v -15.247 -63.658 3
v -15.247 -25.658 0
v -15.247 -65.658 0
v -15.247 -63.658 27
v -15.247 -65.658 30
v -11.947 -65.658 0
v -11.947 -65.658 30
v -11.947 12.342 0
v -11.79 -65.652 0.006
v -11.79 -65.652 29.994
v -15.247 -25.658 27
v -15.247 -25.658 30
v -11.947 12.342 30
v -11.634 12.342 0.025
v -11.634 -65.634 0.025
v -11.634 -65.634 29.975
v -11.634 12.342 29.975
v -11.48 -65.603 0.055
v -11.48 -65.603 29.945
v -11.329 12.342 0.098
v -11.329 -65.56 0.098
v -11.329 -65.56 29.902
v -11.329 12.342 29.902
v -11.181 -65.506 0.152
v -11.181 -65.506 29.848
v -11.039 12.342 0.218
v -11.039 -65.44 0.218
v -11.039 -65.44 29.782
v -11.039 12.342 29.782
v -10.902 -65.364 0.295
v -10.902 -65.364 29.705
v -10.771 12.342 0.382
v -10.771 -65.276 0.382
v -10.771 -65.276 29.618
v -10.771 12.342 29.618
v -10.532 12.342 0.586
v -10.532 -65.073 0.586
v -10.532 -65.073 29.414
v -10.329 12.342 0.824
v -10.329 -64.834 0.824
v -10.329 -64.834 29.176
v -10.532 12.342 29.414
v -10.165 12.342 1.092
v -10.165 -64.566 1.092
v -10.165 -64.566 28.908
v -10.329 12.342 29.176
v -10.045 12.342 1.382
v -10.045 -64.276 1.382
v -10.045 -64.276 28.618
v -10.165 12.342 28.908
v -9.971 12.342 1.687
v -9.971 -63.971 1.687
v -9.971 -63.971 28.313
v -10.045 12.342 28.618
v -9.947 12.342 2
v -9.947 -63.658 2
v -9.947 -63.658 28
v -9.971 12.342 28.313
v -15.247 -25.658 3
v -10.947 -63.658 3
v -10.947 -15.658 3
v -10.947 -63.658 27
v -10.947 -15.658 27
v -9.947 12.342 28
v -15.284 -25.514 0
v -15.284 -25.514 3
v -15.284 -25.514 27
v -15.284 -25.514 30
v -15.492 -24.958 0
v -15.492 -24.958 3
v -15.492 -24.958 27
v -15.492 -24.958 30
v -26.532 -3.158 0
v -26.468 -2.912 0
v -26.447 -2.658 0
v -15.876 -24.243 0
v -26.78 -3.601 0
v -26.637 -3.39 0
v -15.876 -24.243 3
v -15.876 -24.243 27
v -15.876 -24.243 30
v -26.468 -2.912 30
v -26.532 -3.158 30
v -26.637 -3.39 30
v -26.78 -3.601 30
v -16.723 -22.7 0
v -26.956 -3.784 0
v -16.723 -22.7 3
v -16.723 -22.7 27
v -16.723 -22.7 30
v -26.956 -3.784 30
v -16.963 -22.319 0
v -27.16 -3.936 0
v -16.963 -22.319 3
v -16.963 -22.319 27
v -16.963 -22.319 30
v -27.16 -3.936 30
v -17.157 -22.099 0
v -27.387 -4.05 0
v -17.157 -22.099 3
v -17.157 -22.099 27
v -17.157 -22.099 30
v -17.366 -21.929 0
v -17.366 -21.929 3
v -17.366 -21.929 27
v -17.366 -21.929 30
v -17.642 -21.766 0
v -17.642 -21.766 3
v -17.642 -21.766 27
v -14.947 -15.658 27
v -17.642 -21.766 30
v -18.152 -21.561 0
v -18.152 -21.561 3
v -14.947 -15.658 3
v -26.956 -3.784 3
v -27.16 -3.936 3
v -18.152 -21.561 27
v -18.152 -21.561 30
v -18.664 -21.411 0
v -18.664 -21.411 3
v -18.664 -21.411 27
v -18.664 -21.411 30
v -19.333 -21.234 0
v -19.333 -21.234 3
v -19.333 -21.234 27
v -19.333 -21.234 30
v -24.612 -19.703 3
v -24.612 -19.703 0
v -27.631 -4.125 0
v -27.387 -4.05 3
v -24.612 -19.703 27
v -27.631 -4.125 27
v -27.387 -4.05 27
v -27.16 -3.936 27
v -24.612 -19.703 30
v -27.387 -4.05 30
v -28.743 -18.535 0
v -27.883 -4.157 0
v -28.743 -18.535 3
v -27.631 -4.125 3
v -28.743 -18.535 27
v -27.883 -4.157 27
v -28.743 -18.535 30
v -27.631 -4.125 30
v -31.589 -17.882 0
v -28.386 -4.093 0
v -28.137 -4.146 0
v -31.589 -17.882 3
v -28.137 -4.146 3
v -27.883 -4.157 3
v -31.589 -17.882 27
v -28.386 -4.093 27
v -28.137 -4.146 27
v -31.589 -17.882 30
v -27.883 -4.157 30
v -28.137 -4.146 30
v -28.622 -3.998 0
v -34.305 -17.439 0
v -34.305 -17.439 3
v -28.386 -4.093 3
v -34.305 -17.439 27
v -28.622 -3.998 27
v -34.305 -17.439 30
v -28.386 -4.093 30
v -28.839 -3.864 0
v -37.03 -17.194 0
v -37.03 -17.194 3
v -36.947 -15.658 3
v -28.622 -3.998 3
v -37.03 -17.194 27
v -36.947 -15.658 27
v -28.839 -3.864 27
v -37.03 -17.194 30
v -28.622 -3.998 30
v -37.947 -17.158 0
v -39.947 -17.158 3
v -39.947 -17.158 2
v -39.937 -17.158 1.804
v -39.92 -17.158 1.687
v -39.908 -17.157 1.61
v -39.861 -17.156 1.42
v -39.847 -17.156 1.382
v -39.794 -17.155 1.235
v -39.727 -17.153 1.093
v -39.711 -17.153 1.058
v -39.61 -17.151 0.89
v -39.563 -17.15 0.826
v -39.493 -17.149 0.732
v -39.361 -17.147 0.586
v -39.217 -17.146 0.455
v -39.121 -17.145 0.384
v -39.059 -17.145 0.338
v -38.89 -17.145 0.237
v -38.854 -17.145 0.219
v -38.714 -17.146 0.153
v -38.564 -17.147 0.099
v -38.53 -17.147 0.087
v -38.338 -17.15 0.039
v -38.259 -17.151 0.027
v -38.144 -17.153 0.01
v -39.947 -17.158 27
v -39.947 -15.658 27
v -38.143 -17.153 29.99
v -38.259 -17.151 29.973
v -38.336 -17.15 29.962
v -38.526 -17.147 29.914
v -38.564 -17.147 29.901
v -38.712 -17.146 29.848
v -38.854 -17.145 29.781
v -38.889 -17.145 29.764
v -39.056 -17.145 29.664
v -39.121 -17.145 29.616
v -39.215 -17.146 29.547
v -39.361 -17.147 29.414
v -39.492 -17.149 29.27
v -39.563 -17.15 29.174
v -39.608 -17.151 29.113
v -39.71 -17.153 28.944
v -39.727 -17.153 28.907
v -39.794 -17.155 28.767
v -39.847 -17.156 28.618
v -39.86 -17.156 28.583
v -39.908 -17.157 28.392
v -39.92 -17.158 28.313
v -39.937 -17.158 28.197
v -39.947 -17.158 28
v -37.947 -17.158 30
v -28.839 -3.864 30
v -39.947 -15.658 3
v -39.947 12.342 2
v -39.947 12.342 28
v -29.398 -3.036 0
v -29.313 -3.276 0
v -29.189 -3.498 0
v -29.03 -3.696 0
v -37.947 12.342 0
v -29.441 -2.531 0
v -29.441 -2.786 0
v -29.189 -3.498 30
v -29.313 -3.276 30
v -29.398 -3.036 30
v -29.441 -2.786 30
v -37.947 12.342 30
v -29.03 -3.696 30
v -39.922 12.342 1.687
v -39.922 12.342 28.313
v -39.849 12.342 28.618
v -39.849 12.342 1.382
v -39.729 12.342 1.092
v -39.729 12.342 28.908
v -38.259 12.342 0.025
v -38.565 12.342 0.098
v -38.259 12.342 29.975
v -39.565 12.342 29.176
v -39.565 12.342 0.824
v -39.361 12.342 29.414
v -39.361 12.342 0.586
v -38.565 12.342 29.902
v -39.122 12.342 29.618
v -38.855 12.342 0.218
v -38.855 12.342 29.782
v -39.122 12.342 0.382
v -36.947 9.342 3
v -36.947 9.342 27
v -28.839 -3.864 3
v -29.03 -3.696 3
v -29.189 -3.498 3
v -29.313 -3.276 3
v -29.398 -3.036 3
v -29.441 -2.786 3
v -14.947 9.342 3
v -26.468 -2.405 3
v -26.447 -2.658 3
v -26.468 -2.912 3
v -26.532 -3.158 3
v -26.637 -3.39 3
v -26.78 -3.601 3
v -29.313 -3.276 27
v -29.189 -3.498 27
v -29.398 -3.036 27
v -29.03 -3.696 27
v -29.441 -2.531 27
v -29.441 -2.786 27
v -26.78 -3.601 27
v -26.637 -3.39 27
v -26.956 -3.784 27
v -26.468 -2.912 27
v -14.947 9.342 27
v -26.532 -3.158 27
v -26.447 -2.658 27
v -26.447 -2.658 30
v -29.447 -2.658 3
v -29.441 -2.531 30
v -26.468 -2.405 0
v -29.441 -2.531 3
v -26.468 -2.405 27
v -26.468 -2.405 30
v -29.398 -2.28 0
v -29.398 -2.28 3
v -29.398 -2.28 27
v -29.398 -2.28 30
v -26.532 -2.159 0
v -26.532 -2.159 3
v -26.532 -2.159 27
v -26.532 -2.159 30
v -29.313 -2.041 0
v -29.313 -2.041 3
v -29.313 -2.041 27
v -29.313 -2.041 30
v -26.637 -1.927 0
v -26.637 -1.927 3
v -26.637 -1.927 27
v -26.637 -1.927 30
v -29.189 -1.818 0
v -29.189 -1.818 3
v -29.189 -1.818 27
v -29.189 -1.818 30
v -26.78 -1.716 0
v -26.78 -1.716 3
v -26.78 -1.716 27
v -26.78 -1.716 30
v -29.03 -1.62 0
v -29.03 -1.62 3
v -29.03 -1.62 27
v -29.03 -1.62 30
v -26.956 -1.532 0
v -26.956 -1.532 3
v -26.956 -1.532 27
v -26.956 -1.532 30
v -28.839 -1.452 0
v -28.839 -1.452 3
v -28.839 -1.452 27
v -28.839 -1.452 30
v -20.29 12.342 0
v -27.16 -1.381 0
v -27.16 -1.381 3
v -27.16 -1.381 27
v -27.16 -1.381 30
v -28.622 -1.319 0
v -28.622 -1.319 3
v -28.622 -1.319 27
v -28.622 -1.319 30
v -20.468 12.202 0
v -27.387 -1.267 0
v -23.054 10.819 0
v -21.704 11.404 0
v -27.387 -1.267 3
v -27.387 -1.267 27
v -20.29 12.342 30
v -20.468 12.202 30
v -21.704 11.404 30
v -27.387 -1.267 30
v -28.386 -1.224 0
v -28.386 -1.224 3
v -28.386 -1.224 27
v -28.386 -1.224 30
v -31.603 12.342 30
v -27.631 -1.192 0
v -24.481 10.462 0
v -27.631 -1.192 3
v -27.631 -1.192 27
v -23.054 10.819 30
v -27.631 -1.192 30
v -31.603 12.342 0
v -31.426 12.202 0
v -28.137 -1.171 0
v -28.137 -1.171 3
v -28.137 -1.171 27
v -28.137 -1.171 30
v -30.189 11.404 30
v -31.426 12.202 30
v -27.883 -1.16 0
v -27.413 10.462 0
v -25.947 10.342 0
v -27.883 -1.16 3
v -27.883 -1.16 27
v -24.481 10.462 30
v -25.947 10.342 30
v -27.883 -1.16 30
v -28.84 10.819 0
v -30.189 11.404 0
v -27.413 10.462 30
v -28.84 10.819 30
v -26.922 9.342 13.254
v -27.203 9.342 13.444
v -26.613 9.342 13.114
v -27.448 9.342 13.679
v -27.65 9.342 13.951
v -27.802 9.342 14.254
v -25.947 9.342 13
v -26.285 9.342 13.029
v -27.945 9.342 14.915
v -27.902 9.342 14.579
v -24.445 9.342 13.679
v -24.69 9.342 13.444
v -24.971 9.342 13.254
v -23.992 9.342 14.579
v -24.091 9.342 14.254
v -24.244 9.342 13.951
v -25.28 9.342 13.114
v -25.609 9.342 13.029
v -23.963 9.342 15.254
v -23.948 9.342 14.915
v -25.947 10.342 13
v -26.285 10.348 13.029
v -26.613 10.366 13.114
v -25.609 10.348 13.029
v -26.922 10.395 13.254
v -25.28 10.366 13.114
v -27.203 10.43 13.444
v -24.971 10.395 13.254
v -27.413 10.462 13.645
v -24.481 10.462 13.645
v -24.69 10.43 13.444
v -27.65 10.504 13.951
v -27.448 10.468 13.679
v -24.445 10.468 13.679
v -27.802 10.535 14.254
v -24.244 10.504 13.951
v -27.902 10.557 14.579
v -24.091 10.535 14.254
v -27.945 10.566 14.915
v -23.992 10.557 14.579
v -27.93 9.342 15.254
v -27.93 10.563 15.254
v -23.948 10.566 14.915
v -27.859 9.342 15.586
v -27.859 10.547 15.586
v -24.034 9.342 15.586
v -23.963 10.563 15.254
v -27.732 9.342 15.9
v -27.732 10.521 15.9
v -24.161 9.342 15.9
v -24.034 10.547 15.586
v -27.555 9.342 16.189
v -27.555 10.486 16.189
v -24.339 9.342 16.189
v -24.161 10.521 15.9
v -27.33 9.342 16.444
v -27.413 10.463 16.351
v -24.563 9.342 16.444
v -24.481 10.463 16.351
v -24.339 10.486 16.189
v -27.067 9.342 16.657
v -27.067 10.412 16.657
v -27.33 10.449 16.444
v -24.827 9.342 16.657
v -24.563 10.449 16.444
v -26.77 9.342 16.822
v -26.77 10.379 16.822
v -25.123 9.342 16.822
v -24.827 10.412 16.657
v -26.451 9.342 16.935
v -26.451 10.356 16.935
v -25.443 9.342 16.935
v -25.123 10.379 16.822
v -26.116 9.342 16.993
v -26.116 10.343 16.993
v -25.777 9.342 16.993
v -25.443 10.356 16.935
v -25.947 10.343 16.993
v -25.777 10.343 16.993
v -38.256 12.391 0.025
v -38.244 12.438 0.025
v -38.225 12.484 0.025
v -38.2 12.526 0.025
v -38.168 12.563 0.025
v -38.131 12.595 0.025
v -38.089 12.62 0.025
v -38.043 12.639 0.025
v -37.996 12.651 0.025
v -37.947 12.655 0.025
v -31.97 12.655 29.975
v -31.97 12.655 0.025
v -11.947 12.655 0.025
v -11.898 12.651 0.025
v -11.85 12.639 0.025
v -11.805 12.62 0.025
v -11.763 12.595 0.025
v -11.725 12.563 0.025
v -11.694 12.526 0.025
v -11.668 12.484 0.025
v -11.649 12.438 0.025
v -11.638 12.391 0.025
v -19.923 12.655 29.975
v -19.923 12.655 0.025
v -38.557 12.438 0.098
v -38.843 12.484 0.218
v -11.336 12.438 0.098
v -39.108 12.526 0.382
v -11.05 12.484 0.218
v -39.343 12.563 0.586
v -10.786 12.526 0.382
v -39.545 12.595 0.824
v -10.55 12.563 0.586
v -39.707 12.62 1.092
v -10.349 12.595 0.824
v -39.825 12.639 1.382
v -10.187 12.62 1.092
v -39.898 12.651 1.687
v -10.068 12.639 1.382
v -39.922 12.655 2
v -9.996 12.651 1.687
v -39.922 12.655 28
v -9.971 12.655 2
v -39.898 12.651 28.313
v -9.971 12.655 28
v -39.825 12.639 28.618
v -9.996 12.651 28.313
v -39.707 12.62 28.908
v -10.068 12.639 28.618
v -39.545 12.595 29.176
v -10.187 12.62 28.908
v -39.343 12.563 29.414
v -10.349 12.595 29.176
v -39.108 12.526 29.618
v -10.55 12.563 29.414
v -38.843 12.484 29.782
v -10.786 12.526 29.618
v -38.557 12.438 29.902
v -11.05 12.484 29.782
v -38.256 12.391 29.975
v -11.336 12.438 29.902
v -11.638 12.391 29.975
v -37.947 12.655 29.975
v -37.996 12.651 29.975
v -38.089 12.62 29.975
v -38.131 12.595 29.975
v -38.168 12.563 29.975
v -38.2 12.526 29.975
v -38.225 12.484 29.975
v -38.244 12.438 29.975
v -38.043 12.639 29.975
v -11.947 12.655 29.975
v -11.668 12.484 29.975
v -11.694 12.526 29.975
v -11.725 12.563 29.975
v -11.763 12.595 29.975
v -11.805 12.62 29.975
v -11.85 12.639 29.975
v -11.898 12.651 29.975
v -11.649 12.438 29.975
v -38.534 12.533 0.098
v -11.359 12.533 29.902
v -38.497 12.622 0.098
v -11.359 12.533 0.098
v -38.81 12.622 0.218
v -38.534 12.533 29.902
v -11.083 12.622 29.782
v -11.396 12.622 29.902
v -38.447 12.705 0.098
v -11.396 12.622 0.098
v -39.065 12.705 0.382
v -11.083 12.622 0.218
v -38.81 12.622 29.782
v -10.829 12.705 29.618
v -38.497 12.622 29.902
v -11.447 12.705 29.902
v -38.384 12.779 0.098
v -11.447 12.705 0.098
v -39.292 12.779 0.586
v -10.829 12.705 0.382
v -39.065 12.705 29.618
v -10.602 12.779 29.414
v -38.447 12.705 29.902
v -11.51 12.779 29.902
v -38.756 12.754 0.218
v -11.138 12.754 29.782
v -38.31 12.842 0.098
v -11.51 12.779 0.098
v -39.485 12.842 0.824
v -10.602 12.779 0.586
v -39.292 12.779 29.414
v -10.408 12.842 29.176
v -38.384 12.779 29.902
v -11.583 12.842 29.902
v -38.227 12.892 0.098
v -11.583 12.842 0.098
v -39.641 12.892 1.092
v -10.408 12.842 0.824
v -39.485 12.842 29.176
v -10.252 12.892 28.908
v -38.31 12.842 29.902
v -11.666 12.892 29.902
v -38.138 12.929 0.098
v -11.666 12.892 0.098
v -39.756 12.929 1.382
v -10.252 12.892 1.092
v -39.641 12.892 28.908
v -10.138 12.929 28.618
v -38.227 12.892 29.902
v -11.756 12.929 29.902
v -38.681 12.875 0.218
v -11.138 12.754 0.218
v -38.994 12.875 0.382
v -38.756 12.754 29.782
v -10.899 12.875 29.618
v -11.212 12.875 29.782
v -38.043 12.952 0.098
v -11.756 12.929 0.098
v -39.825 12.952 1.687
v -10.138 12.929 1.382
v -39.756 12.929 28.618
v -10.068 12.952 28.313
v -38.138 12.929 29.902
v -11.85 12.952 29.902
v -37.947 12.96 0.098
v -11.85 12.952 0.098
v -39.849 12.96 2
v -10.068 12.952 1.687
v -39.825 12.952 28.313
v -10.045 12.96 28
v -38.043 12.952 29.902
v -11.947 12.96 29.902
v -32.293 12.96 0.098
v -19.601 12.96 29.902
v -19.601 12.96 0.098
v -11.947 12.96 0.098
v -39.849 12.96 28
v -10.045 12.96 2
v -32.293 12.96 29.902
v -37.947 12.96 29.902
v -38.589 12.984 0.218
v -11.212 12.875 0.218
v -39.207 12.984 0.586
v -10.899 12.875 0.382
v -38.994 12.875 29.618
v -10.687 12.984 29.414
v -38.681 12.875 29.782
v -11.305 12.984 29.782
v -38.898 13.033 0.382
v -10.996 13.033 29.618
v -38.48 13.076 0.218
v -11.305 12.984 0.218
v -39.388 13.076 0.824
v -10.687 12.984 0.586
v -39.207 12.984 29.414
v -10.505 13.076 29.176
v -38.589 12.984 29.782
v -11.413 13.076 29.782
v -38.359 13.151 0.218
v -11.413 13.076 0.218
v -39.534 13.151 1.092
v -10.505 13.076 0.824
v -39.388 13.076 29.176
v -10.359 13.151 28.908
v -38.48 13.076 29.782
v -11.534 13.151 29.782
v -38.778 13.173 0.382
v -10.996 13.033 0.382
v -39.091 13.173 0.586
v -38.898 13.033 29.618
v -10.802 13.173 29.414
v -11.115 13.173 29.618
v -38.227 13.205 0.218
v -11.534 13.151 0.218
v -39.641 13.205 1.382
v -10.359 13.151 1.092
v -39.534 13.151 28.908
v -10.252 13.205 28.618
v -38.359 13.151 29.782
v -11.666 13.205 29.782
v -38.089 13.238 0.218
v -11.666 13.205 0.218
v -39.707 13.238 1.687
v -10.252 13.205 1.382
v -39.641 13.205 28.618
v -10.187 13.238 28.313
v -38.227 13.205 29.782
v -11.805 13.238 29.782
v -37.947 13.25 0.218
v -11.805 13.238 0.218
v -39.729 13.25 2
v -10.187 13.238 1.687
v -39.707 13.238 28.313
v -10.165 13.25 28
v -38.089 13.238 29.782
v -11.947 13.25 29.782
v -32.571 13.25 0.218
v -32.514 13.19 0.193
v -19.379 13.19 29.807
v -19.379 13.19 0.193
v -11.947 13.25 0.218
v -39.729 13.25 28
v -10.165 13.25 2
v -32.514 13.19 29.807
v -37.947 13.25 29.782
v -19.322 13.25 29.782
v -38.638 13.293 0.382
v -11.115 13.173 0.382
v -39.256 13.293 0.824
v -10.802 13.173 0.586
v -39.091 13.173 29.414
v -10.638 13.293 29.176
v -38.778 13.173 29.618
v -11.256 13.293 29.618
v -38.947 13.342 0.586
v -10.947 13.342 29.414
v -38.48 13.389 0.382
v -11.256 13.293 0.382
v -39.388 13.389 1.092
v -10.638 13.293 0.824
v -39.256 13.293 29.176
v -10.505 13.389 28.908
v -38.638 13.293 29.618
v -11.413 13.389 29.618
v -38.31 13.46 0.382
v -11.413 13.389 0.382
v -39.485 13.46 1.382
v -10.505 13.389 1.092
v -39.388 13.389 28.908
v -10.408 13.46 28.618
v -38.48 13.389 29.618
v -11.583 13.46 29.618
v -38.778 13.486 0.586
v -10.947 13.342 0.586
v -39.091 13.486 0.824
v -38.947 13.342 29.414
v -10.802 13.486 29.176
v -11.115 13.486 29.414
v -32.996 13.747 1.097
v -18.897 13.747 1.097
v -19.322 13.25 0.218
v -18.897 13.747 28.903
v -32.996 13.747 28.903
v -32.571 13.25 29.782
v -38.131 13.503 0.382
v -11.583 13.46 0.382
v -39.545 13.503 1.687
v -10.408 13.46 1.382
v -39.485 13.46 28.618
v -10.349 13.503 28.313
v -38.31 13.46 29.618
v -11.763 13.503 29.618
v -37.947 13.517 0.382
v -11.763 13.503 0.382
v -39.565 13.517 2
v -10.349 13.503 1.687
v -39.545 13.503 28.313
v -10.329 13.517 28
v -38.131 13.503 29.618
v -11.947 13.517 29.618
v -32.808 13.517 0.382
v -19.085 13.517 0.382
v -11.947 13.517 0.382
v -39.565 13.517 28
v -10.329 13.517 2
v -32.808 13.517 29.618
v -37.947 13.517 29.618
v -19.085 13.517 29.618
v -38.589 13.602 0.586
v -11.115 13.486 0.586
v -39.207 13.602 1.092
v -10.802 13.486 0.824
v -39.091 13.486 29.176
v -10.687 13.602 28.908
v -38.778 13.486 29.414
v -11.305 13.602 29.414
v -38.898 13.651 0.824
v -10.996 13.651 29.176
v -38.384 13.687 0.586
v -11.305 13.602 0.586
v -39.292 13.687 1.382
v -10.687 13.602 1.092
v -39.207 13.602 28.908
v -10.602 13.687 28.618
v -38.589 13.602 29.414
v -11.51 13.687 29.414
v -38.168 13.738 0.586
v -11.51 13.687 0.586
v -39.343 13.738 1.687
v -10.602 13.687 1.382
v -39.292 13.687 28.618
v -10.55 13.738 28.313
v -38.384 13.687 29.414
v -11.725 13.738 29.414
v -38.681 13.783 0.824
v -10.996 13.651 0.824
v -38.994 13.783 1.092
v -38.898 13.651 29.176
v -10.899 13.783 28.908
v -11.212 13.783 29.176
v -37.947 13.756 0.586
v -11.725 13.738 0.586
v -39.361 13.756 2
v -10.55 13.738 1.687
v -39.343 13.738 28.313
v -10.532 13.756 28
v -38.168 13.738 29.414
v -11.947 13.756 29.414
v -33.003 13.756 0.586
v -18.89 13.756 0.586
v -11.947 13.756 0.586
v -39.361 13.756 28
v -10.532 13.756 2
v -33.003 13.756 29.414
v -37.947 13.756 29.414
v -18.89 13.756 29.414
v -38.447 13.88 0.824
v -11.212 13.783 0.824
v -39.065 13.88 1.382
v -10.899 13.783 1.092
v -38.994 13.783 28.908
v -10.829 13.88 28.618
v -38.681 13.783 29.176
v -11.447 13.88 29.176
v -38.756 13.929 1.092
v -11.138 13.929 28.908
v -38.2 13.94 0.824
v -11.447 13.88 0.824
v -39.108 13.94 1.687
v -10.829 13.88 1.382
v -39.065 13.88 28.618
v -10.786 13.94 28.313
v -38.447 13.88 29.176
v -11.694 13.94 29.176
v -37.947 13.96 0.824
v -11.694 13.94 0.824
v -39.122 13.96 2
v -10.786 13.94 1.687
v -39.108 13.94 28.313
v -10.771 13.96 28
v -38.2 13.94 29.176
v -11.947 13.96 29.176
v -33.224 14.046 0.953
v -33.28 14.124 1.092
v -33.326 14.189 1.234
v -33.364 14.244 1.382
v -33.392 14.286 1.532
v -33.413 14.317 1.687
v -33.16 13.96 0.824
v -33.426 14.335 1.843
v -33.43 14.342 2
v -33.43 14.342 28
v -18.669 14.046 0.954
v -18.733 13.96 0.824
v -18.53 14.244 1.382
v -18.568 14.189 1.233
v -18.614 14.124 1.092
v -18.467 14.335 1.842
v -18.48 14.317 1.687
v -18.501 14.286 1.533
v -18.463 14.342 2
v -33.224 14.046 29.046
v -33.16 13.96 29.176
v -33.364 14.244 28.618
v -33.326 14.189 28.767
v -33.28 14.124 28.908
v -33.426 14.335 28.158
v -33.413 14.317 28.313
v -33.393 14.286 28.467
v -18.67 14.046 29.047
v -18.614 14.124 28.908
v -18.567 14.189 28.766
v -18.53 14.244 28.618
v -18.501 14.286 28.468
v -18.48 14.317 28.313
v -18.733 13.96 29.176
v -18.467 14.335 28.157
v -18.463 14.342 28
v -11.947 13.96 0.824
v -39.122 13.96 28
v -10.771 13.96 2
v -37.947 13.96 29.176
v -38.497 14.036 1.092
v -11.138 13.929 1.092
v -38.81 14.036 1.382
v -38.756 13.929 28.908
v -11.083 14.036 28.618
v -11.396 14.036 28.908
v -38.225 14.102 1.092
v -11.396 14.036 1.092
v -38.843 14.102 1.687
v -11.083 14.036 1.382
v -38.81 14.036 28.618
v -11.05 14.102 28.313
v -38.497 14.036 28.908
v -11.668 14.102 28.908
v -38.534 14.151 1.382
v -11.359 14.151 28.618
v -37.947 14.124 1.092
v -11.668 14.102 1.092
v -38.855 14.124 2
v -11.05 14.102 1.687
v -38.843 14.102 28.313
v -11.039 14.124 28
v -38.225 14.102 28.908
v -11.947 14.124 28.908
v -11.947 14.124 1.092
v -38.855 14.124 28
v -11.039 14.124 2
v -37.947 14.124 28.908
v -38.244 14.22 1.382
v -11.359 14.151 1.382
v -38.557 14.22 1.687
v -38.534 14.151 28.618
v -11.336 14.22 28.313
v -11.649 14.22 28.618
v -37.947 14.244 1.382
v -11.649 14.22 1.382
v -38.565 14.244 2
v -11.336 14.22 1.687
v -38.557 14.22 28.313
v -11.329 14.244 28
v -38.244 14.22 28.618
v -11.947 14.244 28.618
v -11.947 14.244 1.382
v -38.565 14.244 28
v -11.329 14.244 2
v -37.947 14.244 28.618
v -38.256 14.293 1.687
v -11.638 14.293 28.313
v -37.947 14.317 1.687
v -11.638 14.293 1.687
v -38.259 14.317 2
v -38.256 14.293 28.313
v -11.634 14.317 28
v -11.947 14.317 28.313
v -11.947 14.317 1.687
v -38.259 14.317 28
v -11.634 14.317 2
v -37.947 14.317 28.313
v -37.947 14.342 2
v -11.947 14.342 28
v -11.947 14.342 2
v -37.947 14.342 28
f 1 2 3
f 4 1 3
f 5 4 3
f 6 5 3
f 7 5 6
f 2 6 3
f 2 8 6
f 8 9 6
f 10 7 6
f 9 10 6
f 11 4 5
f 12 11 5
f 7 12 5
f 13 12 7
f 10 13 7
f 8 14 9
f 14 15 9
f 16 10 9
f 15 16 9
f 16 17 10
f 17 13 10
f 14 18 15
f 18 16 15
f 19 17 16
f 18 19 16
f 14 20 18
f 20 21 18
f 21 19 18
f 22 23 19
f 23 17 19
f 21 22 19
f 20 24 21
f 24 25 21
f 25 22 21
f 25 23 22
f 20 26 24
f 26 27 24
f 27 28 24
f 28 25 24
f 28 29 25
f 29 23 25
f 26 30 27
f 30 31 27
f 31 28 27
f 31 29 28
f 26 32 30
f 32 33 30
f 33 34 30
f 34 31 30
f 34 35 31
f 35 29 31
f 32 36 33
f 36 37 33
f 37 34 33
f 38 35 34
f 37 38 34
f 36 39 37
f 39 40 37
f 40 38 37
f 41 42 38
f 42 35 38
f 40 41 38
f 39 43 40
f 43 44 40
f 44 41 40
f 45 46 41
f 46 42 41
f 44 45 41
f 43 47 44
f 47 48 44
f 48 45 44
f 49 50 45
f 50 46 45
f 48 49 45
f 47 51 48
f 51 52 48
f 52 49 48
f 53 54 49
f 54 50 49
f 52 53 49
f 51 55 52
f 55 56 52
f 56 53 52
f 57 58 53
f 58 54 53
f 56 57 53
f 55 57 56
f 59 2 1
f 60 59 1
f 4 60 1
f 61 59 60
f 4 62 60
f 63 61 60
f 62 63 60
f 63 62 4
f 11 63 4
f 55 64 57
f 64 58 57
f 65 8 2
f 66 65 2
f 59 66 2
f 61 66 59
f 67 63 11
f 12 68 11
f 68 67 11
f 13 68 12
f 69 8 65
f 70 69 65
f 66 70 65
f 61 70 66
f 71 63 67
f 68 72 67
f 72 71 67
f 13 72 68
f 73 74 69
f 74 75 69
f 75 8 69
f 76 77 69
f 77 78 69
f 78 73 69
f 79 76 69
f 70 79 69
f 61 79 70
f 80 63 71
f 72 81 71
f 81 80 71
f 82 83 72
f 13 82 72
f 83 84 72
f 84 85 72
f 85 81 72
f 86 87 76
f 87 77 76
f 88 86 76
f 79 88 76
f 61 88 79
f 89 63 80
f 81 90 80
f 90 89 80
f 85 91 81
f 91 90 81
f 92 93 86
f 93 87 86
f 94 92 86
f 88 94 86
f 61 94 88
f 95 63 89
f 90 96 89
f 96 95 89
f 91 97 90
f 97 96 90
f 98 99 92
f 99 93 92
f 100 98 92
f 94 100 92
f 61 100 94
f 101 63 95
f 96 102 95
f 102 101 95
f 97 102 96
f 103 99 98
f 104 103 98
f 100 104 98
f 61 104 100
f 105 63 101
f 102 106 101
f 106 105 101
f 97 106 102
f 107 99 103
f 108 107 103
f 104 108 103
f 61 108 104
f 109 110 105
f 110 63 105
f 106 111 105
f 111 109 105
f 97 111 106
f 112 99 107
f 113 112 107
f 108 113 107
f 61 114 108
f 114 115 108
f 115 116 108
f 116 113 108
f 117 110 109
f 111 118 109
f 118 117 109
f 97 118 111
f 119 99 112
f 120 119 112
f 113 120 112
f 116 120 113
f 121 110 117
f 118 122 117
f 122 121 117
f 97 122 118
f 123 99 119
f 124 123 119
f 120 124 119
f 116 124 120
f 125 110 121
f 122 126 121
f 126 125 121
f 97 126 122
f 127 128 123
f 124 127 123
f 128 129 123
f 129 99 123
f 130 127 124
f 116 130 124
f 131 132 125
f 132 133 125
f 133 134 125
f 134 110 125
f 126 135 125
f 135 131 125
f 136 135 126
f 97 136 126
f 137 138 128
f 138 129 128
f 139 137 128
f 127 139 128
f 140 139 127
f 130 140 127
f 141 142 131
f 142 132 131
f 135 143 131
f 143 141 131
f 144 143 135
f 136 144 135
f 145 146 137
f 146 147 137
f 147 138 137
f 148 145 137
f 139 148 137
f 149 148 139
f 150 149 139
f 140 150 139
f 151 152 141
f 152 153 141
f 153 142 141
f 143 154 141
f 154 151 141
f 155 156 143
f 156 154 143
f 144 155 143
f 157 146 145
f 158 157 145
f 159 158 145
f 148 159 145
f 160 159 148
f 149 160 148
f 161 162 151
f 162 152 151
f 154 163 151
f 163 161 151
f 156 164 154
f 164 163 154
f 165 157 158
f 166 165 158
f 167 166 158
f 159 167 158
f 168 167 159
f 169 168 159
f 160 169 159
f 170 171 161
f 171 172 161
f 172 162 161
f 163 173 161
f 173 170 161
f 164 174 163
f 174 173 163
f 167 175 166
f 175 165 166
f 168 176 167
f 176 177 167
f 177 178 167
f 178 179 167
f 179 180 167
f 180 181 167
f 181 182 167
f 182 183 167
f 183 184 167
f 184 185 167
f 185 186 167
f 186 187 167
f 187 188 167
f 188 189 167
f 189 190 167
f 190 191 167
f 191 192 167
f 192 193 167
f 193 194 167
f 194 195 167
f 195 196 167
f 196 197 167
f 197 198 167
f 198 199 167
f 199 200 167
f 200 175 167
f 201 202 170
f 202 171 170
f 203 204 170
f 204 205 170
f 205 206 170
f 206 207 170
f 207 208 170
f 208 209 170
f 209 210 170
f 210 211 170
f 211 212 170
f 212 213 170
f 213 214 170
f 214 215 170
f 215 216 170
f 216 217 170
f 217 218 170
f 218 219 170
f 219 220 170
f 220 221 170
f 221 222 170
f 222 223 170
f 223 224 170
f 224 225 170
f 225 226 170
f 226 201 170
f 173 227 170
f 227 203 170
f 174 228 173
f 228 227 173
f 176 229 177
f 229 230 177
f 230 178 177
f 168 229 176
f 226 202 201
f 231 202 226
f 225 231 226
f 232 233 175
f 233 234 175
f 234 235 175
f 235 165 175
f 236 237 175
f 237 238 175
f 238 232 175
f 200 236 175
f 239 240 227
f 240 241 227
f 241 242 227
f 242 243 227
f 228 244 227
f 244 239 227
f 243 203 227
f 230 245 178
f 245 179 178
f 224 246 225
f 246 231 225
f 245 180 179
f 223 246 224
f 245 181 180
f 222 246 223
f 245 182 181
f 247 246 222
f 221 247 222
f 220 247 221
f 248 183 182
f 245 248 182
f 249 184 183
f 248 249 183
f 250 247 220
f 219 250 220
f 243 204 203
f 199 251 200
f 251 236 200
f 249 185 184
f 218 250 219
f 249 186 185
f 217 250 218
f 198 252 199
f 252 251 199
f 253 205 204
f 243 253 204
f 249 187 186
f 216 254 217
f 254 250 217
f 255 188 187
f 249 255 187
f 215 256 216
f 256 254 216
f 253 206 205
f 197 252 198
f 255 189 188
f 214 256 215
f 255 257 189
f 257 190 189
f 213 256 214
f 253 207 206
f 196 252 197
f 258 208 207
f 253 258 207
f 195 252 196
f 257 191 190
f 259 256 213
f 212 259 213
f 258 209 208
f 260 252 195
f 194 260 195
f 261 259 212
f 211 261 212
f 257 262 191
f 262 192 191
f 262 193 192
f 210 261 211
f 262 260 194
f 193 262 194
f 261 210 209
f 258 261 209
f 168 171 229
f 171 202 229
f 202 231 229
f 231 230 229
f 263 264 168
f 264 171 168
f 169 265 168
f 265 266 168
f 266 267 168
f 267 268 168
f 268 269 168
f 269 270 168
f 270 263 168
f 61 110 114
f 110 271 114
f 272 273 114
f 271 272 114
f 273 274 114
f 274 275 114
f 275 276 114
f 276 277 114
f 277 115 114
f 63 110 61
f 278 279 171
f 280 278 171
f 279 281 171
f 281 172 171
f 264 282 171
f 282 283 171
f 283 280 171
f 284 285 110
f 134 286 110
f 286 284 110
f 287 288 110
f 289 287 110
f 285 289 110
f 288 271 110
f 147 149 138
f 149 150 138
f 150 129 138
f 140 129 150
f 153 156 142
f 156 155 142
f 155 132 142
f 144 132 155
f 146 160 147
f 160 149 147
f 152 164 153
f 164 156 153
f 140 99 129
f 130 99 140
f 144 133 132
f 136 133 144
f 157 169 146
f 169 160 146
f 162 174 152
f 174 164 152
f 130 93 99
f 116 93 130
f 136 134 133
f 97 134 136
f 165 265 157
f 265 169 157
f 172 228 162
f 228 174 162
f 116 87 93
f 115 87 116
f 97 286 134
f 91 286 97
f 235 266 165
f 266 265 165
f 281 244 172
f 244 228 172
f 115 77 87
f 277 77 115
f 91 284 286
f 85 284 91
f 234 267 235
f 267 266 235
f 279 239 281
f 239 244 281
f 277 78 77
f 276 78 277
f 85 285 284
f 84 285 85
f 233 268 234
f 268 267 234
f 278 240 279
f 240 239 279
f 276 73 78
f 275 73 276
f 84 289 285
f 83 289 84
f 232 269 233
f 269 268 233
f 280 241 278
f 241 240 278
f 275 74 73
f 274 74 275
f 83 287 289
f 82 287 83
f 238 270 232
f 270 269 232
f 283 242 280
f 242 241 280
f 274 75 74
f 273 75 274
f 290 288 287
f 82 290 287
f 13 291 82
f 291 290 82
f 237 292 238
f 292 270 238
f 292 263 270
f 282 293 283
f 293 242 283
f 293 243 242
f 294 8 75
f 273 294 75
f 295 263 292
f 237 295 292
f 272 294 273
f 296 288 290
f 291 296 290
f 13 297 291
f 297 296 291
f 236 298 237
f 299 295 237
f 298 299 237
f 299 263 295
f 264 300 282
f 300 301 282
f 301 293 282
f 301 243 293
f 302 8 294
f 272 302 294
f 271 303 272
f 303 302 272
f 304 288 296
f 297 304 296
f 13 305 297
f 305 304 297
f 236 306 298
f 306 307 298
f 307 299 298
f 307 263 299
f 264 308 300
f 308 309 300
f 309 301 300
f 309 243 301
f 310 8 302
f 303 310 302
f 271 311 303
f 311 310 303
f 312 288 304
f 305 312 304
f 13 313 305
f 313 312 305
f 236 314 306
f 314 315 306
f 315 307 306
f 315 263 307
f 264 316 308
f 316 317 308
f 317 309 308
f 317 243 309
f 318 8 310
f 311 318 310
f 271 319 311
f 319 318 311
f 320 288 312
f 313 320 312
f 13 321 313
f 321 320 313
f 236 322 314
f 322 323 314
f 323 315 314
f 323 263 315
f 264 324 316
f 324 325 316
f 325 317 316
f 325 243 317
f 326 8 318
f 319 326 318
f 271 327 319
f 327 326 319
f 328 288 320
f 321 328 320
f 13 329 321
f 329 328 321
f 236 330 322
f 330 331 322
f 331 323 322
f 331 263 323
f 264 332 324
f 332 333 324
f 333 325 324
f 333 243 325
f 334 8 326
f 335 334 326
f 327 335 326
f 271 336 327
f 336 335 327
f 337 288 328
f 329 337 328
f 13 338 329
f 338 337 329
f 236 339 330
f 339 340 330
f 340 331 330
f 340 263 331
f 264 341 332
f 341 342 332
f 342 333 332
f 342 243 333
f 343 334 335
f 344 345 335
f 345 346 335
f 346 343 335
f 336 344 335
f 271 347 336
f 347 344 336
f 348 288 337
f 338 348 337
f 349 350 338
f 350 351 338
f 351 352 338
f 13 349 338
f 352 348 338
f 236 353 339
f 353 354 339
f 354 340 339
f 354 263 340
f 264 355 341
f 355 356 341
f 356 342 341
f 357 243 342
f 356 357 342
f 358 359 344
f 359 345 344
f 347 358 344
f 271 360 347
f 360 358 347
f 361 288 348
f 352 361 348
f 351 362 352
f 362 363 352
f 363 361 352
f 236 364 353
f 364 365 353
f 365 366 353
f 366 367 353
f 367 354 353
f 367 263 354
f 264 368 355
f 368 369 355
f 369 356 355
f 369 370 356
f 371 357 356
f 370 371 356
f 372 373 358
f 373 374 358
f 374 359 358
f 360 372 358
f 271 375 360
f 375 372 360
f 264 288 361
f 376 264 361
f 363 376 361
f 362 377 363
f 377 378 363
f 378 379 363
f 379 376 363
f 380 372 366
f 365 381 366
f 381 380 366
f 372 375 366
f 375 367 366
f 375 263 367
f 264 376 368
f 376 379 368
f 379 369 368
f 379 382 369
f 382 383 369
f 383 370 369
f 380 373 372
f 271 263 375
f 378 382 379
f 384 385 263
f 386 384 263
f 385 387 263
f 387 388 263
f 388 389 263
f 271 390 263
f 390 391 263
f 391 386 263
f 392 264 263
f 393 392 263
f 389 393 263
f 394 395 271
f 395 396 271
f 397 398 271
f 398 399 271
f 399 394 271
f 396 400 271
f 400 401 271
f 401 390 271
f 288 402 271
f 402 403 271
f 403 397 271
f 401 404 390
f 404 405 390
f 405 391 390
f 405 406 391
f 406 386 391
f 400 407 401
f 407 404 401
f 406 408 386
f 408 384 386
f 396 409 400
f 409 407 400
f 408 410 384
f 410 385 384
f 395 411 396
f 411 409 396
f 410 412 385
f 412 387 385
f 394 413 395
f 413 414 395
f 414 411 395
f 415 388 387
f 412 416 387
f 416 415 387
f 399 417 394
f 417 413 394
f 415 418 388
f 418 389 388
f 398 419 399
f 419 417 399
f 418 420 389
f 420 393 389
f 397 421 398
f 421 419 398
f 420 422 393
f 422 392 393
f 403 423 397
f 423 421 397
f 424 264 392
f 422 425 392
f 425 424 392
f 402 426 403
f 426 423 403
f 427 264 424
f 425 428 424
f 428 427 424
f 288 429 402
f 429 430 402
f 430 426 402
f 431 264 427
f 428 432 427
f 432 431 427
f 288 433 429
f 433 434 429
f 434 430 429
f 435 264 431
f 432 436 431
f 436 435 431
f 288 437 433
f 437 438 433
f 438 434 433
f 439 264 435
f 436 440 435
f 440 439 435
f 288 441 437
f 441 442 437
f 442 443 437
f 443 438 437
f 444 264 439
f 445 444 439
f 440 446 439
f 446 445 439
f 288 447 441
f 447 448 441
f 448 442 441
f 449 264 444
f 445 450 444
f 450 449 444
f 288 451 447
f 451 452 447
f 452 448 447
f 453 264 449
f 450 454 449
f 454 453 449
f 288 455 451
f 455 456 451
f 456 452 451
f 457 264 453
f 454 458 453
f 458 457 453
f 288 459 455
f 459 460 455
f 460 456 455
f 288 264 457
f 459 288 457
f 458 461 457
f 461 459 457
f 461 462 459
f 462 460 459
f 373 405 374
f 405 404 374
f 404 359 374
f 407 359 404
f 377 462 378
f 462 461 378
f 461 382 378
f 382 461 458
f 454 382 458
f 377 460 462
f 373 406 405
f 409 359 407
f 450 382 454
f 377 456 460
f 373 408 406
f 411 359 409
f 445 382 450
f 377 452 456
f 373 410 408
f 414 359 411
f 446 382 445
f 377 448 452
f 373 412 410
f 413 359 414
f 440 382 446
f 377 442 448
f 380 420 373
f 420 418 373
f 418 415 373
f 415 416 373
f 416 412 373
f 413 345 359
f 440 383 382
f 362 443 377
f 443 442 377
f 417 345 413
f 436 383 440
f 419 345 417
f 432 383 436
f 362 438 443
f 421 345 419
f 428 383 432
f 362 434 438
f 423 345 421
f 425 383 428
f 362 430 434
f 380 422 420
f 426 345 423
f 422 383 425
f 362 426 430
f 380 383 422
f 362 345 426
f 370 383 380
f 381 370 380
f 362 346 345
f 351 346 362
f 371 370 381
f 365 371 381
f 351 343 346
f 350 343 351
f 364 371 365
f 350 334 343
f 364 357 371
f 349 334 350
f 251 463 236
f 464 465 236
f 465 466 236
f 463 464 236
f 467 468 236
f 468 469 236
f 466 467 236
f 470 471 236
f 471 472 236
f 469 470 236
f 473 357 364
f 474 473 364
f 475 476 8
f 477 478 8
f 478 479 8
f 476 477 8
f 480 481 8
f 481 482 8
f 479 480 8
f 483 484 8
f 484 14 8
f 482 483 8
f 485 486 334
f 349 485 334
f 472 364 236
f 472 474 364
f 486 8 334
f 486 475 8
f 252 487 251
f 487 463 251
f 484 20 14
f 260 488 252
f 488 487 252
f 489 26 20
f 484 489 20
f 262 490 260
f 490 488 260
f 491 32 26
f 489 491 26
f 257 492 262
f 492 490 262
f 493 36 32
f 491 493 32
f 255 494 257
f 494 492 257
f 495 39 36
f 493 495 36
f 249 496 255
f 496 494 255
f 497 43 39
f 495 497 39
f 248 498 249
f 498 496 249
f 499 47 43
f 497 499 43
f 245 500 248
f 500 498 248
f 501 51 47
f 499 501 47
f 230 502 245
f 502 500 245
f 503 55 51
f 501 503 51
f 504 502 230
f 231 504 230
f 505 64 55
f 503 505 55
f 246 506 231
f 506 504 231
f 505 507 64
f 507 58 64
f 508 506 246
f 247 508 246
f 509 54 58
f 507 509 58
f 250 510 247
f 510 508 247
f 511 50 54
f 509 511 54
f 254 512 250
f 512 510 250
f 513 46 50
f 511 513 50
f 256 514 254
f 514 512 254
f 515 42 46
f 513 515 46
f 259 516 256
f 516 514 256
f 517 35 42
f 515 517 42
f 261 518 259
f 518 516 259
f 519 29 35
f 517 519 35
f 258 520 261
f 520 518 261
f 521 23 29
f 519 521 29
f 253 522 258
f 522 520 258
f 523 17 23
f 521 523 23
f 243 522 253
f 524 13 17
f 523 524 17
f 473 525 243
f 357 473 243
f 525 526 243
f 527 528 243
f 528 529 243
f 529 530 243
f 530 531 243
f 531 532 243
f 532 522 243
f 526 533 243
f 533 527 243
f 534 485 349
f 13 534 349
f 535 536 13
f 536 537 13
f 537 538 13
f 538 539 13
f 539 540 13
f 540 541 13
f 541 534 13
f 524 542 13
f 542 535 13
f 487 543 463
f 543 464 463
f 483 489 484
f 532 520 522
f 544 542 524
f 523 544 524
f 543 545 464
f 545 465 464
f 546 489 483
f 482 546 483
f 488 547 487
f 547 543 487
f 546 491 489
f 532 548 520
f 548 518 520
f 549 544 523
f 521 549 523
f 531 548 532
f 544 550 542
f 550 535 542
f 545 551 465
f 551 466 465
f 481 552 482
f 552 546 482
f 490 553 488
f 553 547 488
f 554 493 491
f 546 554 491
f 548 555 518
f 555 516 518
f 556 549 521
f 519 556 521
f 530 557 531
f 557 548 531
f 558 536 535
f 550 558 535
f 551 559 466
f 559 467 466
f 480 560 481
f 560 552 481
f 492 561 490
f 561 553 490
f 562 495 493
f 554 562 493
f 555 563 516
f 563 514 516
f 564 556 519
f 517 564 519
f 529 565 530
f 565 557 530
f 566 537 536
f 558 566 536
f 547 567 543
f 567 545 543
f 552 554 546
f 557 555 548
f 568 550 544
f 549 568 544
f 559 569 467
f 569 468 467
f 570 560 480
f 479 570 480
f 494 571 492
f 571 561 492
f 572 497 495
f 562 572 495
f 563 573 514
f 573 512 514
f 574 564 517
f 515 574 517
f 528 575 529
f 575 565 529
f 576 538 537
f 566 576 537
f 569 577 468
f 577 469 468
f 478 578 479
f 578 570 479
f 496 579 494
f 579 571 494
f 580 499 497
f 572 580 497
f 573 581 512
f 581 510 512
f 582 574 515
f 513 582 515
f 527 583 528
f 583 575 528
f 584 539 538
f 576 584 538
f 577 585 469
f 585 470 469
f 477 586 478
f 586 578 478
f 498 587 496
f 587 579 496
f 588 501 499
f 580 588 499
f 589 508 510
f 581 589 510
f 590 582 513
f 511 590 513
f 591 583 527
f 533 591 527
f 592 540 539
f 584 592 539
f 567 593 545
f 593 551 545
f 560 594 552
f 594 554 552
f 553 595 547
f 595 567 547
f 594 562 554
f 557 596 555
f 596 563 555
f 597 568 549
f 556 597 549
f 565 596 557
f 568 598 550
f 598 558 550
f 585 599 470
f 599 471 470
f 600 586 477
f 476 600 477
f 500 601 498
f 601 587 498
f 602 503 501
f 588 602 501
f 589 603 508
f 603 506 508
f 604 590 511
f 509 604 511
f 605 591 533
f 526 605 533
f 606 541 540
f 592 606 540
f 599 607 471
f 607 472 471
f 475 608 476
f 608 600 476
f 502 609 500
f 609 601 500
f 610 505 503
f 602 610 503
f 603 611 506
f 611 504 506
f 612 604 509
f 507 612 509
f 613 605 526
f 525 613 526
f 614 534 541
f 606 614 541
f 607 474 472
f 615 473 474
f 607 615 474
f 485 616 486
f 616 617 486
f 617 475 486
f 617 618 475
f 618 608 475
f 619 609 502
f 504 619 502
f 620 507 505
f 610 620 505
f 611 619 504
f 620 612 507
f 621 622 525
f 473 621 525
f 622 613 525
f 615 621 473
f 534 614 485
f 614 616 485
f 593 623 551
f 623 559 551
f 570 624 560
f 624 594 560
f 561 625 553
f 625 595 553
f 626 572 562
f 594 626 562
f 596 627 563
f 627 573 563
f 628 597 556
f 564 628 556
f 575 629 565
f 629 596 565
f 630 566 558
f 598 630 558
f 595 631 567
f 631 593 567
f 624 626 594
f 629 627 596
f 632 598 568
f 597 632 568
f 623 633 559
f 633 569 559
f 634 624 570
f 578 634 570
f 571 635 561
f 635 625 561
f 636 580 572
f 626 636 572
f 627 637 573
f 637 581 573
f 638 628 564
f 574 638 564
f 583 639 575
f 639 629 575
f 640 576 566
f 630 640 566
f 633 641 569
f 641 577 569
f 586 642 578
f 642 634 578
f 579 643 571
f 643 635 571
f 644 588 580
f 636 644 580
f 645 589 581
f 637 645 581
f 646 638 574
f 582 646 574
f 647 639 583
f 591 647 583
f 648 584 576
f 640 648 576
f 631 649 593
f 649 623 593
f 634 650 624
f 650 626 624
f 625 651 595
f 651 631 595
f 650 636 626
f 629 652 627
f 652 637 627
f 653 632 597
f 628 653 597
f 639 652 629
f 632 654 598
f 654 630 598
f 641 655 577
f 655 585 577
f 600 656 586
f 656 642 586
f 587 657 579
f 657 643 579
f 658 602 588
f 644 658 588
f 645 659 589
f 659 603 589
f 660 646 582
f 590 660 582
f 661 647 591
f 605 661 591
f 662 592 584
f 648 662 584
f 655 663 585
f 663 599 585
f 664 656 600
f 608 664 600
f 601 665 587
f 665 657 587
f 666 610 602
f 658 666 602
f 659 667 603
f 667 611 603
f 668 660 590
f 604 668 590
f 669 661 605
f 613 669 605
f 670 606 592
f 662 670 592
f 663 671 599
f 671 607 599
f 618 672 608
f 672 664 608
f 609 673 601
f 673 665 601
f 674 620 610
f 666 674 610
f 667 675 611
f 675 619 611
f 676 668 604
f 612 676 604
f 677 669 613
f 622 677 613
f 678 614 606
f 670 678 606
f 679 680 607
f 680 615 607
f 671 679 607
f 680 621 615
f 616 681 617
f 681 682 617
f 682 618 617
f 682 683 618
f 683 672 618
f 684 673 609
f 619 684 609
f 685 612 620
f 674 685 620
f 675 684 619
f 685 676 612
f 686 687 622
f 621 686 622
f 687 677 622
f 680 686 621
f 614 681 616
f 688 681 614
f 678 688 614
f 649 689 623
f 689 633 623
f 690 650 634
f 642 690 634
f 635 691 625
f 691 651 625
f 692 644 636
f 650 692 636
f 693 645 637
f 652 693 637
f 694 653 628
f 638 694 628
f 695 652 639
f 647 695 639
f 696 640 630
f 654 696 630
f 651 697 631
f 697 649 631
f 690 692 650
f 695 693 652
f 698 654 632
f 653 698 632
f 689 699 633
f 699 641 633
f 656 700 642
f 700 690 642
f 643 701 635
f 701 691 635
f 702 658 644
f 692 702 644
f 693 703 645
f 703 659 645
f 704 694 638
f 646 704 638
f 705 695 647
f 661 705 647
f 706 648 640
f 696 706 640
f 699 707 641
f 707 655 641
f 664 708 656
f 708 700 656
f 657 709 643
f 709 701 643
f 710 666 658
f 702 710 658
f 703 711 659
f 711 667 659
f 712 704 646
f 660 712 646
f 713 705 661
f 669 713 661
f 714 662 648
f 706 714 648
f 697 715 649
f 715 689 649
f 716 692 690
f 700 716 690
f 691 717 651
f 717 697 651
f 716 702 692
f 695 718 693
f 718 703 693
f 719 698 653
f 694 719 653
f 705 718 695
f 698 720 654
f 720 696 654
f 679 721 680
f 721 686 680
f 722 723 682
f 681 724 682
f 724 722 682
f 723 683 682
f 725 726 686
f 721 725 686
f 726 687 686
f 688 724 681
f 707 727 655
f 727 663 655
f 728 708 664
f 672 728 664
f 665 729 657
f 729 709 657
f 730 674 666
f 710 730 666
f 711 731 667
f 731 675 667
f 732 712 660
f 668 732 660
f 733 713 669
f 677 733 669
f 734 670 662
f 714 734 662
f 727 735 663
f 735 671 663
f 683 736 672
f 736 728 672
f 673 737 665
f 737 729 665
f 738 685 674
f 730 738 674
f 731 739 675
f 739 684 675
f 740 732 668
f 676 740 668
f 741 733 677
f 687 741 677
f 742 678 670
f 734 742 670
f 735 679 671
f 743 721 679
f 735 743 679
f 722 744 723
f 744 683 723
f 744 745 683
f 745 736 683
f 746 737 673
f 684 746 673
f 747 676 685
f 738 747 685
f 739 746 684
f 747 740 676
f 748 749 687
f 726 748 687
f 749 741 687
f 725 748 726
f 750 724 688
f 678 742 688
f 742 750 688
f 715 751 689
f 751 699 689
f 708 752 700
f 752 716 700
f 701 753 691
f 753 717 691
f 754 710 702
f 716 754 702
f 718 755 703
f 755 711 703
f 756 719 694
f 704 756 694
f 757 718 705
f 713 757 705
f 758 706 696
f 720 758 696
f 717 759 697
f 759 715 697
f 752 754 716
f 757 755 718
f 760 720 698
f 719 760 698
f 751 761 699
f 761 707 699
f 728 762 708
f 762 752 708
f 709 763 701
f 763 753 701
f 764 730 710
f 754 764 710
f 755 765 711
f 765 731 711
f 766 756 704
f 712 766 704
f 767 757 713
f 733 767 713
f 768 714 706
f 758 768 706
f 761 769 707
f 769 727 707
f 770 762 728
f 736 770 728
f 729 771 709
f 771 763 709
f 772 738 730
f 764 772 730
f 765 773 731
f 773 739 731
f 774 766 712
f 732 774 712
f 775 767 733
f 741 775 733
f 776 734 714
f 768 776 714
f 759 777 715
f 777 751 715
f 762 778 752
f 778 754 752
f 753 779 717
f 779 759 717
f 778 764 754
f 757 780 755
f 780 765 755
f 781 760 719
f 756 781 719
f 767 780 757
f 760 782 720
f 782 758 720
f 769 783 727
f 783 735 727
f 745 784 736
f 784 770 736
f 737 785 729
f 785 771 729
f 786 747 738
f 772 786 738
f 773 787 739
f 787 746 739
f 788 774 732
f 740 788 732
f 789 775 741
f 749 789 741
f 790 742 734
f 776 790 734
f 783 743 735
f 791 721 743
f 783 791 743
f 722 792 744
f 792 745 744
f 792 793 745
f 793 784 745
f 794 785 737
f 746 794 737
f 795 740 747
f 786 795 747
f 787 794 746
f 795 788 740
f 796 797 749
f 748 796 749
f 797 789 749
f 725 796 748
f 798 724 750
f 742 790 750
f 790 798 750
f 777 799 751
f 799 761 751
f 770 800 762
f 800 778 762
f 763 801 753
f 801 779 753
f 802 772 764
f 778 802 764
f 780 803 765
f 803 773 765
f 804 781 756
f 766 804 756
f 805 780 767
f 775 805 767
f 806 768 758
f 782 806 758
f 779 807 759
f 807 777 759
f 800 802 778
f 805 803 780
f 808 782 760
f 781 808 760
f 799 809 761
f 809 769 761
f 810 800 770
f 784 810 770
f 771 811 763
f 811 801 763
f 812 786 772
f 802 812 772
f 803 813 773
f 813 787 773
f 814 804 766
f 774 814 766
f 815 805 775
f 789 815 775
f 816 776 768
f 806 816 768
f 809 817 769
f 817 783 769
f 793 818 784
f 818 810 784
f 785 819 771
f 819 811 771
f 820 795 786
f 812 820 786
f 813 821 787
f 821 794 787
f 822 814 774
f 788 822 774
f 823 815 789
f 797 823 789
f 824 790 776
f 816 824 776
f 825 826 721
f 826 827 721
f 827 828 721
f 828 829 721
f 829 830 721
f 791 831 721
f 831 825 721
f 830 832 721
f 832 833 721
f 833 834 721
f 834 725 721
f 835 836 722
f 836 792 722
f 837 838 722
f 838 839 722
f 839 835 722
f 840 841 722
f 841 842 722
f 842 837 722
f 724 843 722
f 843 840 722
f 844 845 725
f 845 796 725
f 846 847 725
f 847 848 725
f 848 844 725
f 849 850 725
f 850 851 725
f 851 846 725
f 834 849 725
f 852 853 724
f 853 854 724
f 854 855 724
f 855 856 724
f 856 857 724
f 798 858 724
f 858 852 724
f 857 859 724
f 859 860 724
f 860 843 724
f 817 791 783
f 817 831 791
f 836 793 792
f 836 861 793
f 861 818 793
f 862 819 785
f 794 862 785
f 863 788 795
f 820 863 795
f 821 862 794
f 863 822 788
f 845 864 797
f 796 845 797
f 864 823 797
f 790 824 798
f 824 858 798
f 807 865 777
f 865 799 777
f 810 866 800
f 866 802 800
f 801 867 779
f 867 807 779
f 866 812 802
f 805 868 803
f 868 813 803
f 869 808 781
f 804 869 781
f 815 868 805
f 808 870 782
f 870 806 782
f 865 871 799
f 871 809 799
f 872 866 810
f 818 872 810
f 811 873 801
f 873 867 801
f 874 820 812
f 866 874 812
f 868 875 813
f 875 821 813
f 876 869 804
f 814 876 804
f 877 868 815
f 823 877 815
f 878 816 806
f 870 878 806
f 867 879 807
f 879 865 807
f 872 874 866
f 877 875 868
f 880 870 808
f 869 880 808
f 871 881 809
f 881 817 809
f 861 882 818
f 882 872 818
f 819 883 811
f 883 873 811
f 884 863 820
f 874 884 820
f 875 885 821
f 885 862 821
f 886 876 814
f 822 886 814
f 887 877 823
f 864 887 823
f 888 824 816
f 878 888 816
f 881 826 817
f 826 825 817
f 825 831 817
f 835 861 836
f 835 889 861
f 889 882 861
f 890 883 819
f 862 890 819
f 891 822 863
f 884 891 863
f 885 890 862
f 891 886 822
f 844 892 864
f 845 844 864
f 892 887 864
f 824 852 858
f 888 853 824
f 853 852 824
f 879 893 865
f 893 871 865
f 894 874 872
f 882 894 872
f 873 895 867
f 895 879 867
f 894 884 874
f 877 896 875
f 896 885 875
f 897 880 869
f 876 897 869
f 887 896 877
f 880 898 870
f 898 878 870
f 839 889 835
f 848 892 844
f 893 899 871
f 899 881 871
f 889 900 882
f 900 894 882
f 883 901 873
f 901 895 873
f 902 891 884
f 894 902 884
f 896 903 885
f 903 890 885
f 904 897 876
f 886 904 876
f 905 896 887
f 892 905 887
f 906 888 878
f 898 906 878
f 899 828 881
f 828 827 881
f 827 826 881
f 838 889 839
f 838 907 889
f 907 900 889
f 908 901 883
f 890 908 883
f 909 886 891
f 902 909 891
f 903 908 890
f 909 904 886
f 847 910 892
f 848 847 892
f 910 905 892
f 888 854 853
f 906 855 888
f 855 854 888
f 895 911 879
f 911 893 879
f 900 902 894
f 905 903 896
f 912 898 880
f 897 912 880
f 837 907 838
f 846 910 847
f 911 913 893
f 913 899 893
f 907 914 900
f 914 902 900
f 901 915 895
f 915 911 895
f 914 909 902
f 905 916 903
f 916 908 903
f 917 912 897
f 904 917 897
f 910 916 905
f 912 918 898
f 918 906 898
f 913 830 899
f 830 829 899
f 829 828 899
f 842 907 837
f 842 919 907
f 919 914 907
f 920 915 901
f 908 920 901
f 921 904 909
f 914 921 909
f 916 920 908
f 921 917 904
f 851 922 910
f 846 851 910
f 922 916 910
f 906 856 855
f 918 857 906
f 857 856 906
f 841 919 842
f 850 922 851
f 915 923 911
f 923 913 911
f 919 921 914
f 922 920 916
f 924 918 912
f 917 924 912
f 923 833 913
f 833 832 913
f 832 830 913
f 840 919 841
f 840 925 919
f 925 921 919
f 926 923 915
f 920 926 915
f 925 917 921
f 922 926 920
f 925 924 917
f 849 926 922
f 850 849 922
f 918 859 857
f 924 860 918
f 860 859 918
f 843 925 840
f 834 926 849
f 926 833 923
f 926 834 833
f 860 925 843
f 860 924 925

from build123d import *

# Parameters (mm, degrees)
CROQUIS1_W              = 28
CROQUIS1_H              = 30
SALIENTE_EXTRUIR1_DEPTH = 30
CROQUIS2_W              = 22
CROQUIS2_H              = 24
CORTAR_EXTRUIR1_DEPTH   = 25
CORTAR_EXTRUIR3_START   = -30
CORTAR_EXTRUIR3_DEPTH   = 30
CROQUIS3_R              = 2
CORTAR_EXTRUIR4_DEPTH   = 5
CORTAR_EXTRUIR5_START   = -30
CROQUIS6_R              = 1.5
CORTAR_EXTRUIR5_DEPTH   = 30
CROQUIS8_W              = 30
CROQUIS8_H              = 78
SALIENTE_EXTRUIR2_DEPTH = 2
CROQUIS9_W              = 3.3
CROQUIS9_H              = 3
SALIENTE_EXTRUIR3_DEPTH = 48
CROQUIS10_W             = 30
CROQUIS10_H             = 2
SALIENTE_EXTRUIR4_DEPTH = 5.3
CROQUIS11_W             = 24
CROQUIS11_H             = 48
CORTAR_EXTRUIR6_DEPTH   = 1
SALIENTE_EXTRUIR5_DEPTH = 3
REDONDEO2_R             = 2


with BuildPart() as part:
    # Croquis1 → Saliente-Extruir1 (new body)
    with BuildSketch(Plane.XY):
        with Locations((-25.946619217, -0.658362989)):
            Rectangle(CROQUIS1_W, CROQUIS1_H)
    extrude(amount=SALIENTE_EXTRUIR1_DEPTH)

    # Croquis2 → Cortar-Extruir1 (cut)
    with BuildSketch(Plane.XZ.offset(15.658362989)):
        with Locations((-25.946619217, 15)):
            Rectangle(CROQUIS2_W, CROQUIS2_H)
    extrude(amount=-CORTAR_EXTRUIR1_DEPTH, mode=Mode.SUBTRACT)

    # Croquis5 → Cortar-Extruir3 (cut)
    with BuildSketch(Plane.XY.offset(30).offset(CORTAR_EXTRUIR3_START)):
        with BuildLine():
            Line((-18.463304444, 14.341637011), (-33.429933991, 14.341637011))
            ThreePointArc((-33.429933991, 14.341637011), (-25.946619217, 10.341637011), (-18.463304444, 14.341637011))
        make_face()
    extrude(amount=CORTAR_EXTRUIR3_DEPTH, mode=Mode.SUBTRACT)

    # Croquis3 → Cortar-Extruir4 (cut)
    with BuildSketch(Plane.XZ.offset(-9.341637011)):
        with Locations((-25.946619217, 15)):
            Circle(CROQUIS3_R)
    extrude(amount=-CORTAR_EXTRUIR4_DEPTH, mode=Mode.SUBTRACT)

    # Croquis6 → Cortar-Extruir5 (cut)
    with BuildSketch(Plane.XY.offset(30).offset(CORTAR_EXTRUIR5_START)):
        with Locations((-27.946619217, -2.658362989)):
            Circle(CROQUIS6_R)
    extrude(amount=CORTAR_EXTRUIR5_DEPTH, mode=Mode.SUBTRACT)

    # Croquis8 → Saliente-Extruir2 (add)
    with BuildSketch(Plane(origin=(-11.946619217, 0, 0), x_dir=(0, 0, -1), z_dir=(1, 0, 0))):
        with Locations((-15, -24.658362989)):
            Rectangle(CROQUIS8_W, CROQUIS8_H)
    extrude(amount=SALIENTE_EXTRUIR2_DEPTH)

    # Croquis9 → Saliente-Extruir3 (add)
    with BuildSketch(Plane.XZ.offset(15.658362989)):
        with Locations((-13.596619217, 1.5)):
            Rectangle(CROQUIS9_W, CROQUIS9_H)
        with Locations((-13.596619217, 28.5)):
            Rectangle(CROQUIS9_W, CROQUIS9_H)
    extrude(amount=SALIENTE_EXTRUIR3_DEPTH)

    # Croquis10 → Saliente-Extruir4 (add)
    with BuildSketch(Plane(origin=(-9.946619217, 0, 0), x_dir=(0, 0, -1), z_dir=(1, 0, 0))):
        with Locations((-15, -64.658362989)):
            Rectangle(CROQUIS10_W, CROQUIS10_H)
    extrude(amount=-SALIENTE_EXTRUIR4_DEPTH)

    # Croquis11 → Cortar-Extruir6 (cut)
    with BuildSketch(Plane.ZY.offset(11.946619217)):
        with Locations((15, -39.658362989)):
            Rectangle(CROQUIS11_W, CROQUIS11_H)
    extrude(amount=-CORTAR_EXTRUIR6_DEPTH, mode=Mode.SUBTRACT)

    # Croquis12 → Saliente-Extruir5 (add)
    with BuildSketch(Plane.XY.offset(30)):
        with BuildLine():
            Line((-15.246619217, -15.658362989), (-15.246619217, -24.658362989))
            Line((-15.246619217, -24.658362989), (-15.246619217, -25.658362989))
            add(Edge.make_bspline(
                [(-15.246619217, -25.658362989), (-15.454297932, -24.784354335), (-16.276669262, -23.769291156), (-17.060396799, -21.819515511), (-25.742756364, -19.637986616), (-31.719204445, -16.94099226), (-39.946619217, -17.158362989)],
                knots=[0, 0, 0, 0, 0.094483023, 0.145649735, 0.216240506, 1, 1, 1, 1], degree=3))
            Line((-39.946619217, -17.158362989), (-39.946619217, -15.658362989))
            Line((-39.946619217, -15.658362989), (-15.246619217, -15.658362989))
        make_face()
    saliente_extruir5 = extrude(amount=-SALIENTE_EXTRUIR5_DEPTH)

    # Simetría2: Saliente-Extruir5 across plane
    add(saliente_extruir5.mirror(Plane(origin=(0, 0, 15), x_dir=(1, 0, 0), z_dir=(0, 0, -1))))

    # Redondeo2
    redondeo2_edges = [part.edges().sort_by_distance(p)[0] for p in [
        (-14.20496183, 14.341637011, 30),
        (-36.688276604, 14.341637011, 0),
        (-36.688276604, 14.341637011, 30),
        (-39.946619217, -1.408362989, 30),
        (-14.20496183, 14.341637011, 0),
        (-9.946619217, -25.658362989, 30),
        (-9.946619217, -25.658362989, 0),
        (-9.946619217, 14.341637011, 15),
        (-39.946619217, -1.408362989, 0),
        (-39.946619217, 14.341637011, 15),
        (-9.946619217, -65.658362989, 15),
    ]]
    fillet(redondeo2_edges, radius=REDONDEO2_R)


solid = part.part
